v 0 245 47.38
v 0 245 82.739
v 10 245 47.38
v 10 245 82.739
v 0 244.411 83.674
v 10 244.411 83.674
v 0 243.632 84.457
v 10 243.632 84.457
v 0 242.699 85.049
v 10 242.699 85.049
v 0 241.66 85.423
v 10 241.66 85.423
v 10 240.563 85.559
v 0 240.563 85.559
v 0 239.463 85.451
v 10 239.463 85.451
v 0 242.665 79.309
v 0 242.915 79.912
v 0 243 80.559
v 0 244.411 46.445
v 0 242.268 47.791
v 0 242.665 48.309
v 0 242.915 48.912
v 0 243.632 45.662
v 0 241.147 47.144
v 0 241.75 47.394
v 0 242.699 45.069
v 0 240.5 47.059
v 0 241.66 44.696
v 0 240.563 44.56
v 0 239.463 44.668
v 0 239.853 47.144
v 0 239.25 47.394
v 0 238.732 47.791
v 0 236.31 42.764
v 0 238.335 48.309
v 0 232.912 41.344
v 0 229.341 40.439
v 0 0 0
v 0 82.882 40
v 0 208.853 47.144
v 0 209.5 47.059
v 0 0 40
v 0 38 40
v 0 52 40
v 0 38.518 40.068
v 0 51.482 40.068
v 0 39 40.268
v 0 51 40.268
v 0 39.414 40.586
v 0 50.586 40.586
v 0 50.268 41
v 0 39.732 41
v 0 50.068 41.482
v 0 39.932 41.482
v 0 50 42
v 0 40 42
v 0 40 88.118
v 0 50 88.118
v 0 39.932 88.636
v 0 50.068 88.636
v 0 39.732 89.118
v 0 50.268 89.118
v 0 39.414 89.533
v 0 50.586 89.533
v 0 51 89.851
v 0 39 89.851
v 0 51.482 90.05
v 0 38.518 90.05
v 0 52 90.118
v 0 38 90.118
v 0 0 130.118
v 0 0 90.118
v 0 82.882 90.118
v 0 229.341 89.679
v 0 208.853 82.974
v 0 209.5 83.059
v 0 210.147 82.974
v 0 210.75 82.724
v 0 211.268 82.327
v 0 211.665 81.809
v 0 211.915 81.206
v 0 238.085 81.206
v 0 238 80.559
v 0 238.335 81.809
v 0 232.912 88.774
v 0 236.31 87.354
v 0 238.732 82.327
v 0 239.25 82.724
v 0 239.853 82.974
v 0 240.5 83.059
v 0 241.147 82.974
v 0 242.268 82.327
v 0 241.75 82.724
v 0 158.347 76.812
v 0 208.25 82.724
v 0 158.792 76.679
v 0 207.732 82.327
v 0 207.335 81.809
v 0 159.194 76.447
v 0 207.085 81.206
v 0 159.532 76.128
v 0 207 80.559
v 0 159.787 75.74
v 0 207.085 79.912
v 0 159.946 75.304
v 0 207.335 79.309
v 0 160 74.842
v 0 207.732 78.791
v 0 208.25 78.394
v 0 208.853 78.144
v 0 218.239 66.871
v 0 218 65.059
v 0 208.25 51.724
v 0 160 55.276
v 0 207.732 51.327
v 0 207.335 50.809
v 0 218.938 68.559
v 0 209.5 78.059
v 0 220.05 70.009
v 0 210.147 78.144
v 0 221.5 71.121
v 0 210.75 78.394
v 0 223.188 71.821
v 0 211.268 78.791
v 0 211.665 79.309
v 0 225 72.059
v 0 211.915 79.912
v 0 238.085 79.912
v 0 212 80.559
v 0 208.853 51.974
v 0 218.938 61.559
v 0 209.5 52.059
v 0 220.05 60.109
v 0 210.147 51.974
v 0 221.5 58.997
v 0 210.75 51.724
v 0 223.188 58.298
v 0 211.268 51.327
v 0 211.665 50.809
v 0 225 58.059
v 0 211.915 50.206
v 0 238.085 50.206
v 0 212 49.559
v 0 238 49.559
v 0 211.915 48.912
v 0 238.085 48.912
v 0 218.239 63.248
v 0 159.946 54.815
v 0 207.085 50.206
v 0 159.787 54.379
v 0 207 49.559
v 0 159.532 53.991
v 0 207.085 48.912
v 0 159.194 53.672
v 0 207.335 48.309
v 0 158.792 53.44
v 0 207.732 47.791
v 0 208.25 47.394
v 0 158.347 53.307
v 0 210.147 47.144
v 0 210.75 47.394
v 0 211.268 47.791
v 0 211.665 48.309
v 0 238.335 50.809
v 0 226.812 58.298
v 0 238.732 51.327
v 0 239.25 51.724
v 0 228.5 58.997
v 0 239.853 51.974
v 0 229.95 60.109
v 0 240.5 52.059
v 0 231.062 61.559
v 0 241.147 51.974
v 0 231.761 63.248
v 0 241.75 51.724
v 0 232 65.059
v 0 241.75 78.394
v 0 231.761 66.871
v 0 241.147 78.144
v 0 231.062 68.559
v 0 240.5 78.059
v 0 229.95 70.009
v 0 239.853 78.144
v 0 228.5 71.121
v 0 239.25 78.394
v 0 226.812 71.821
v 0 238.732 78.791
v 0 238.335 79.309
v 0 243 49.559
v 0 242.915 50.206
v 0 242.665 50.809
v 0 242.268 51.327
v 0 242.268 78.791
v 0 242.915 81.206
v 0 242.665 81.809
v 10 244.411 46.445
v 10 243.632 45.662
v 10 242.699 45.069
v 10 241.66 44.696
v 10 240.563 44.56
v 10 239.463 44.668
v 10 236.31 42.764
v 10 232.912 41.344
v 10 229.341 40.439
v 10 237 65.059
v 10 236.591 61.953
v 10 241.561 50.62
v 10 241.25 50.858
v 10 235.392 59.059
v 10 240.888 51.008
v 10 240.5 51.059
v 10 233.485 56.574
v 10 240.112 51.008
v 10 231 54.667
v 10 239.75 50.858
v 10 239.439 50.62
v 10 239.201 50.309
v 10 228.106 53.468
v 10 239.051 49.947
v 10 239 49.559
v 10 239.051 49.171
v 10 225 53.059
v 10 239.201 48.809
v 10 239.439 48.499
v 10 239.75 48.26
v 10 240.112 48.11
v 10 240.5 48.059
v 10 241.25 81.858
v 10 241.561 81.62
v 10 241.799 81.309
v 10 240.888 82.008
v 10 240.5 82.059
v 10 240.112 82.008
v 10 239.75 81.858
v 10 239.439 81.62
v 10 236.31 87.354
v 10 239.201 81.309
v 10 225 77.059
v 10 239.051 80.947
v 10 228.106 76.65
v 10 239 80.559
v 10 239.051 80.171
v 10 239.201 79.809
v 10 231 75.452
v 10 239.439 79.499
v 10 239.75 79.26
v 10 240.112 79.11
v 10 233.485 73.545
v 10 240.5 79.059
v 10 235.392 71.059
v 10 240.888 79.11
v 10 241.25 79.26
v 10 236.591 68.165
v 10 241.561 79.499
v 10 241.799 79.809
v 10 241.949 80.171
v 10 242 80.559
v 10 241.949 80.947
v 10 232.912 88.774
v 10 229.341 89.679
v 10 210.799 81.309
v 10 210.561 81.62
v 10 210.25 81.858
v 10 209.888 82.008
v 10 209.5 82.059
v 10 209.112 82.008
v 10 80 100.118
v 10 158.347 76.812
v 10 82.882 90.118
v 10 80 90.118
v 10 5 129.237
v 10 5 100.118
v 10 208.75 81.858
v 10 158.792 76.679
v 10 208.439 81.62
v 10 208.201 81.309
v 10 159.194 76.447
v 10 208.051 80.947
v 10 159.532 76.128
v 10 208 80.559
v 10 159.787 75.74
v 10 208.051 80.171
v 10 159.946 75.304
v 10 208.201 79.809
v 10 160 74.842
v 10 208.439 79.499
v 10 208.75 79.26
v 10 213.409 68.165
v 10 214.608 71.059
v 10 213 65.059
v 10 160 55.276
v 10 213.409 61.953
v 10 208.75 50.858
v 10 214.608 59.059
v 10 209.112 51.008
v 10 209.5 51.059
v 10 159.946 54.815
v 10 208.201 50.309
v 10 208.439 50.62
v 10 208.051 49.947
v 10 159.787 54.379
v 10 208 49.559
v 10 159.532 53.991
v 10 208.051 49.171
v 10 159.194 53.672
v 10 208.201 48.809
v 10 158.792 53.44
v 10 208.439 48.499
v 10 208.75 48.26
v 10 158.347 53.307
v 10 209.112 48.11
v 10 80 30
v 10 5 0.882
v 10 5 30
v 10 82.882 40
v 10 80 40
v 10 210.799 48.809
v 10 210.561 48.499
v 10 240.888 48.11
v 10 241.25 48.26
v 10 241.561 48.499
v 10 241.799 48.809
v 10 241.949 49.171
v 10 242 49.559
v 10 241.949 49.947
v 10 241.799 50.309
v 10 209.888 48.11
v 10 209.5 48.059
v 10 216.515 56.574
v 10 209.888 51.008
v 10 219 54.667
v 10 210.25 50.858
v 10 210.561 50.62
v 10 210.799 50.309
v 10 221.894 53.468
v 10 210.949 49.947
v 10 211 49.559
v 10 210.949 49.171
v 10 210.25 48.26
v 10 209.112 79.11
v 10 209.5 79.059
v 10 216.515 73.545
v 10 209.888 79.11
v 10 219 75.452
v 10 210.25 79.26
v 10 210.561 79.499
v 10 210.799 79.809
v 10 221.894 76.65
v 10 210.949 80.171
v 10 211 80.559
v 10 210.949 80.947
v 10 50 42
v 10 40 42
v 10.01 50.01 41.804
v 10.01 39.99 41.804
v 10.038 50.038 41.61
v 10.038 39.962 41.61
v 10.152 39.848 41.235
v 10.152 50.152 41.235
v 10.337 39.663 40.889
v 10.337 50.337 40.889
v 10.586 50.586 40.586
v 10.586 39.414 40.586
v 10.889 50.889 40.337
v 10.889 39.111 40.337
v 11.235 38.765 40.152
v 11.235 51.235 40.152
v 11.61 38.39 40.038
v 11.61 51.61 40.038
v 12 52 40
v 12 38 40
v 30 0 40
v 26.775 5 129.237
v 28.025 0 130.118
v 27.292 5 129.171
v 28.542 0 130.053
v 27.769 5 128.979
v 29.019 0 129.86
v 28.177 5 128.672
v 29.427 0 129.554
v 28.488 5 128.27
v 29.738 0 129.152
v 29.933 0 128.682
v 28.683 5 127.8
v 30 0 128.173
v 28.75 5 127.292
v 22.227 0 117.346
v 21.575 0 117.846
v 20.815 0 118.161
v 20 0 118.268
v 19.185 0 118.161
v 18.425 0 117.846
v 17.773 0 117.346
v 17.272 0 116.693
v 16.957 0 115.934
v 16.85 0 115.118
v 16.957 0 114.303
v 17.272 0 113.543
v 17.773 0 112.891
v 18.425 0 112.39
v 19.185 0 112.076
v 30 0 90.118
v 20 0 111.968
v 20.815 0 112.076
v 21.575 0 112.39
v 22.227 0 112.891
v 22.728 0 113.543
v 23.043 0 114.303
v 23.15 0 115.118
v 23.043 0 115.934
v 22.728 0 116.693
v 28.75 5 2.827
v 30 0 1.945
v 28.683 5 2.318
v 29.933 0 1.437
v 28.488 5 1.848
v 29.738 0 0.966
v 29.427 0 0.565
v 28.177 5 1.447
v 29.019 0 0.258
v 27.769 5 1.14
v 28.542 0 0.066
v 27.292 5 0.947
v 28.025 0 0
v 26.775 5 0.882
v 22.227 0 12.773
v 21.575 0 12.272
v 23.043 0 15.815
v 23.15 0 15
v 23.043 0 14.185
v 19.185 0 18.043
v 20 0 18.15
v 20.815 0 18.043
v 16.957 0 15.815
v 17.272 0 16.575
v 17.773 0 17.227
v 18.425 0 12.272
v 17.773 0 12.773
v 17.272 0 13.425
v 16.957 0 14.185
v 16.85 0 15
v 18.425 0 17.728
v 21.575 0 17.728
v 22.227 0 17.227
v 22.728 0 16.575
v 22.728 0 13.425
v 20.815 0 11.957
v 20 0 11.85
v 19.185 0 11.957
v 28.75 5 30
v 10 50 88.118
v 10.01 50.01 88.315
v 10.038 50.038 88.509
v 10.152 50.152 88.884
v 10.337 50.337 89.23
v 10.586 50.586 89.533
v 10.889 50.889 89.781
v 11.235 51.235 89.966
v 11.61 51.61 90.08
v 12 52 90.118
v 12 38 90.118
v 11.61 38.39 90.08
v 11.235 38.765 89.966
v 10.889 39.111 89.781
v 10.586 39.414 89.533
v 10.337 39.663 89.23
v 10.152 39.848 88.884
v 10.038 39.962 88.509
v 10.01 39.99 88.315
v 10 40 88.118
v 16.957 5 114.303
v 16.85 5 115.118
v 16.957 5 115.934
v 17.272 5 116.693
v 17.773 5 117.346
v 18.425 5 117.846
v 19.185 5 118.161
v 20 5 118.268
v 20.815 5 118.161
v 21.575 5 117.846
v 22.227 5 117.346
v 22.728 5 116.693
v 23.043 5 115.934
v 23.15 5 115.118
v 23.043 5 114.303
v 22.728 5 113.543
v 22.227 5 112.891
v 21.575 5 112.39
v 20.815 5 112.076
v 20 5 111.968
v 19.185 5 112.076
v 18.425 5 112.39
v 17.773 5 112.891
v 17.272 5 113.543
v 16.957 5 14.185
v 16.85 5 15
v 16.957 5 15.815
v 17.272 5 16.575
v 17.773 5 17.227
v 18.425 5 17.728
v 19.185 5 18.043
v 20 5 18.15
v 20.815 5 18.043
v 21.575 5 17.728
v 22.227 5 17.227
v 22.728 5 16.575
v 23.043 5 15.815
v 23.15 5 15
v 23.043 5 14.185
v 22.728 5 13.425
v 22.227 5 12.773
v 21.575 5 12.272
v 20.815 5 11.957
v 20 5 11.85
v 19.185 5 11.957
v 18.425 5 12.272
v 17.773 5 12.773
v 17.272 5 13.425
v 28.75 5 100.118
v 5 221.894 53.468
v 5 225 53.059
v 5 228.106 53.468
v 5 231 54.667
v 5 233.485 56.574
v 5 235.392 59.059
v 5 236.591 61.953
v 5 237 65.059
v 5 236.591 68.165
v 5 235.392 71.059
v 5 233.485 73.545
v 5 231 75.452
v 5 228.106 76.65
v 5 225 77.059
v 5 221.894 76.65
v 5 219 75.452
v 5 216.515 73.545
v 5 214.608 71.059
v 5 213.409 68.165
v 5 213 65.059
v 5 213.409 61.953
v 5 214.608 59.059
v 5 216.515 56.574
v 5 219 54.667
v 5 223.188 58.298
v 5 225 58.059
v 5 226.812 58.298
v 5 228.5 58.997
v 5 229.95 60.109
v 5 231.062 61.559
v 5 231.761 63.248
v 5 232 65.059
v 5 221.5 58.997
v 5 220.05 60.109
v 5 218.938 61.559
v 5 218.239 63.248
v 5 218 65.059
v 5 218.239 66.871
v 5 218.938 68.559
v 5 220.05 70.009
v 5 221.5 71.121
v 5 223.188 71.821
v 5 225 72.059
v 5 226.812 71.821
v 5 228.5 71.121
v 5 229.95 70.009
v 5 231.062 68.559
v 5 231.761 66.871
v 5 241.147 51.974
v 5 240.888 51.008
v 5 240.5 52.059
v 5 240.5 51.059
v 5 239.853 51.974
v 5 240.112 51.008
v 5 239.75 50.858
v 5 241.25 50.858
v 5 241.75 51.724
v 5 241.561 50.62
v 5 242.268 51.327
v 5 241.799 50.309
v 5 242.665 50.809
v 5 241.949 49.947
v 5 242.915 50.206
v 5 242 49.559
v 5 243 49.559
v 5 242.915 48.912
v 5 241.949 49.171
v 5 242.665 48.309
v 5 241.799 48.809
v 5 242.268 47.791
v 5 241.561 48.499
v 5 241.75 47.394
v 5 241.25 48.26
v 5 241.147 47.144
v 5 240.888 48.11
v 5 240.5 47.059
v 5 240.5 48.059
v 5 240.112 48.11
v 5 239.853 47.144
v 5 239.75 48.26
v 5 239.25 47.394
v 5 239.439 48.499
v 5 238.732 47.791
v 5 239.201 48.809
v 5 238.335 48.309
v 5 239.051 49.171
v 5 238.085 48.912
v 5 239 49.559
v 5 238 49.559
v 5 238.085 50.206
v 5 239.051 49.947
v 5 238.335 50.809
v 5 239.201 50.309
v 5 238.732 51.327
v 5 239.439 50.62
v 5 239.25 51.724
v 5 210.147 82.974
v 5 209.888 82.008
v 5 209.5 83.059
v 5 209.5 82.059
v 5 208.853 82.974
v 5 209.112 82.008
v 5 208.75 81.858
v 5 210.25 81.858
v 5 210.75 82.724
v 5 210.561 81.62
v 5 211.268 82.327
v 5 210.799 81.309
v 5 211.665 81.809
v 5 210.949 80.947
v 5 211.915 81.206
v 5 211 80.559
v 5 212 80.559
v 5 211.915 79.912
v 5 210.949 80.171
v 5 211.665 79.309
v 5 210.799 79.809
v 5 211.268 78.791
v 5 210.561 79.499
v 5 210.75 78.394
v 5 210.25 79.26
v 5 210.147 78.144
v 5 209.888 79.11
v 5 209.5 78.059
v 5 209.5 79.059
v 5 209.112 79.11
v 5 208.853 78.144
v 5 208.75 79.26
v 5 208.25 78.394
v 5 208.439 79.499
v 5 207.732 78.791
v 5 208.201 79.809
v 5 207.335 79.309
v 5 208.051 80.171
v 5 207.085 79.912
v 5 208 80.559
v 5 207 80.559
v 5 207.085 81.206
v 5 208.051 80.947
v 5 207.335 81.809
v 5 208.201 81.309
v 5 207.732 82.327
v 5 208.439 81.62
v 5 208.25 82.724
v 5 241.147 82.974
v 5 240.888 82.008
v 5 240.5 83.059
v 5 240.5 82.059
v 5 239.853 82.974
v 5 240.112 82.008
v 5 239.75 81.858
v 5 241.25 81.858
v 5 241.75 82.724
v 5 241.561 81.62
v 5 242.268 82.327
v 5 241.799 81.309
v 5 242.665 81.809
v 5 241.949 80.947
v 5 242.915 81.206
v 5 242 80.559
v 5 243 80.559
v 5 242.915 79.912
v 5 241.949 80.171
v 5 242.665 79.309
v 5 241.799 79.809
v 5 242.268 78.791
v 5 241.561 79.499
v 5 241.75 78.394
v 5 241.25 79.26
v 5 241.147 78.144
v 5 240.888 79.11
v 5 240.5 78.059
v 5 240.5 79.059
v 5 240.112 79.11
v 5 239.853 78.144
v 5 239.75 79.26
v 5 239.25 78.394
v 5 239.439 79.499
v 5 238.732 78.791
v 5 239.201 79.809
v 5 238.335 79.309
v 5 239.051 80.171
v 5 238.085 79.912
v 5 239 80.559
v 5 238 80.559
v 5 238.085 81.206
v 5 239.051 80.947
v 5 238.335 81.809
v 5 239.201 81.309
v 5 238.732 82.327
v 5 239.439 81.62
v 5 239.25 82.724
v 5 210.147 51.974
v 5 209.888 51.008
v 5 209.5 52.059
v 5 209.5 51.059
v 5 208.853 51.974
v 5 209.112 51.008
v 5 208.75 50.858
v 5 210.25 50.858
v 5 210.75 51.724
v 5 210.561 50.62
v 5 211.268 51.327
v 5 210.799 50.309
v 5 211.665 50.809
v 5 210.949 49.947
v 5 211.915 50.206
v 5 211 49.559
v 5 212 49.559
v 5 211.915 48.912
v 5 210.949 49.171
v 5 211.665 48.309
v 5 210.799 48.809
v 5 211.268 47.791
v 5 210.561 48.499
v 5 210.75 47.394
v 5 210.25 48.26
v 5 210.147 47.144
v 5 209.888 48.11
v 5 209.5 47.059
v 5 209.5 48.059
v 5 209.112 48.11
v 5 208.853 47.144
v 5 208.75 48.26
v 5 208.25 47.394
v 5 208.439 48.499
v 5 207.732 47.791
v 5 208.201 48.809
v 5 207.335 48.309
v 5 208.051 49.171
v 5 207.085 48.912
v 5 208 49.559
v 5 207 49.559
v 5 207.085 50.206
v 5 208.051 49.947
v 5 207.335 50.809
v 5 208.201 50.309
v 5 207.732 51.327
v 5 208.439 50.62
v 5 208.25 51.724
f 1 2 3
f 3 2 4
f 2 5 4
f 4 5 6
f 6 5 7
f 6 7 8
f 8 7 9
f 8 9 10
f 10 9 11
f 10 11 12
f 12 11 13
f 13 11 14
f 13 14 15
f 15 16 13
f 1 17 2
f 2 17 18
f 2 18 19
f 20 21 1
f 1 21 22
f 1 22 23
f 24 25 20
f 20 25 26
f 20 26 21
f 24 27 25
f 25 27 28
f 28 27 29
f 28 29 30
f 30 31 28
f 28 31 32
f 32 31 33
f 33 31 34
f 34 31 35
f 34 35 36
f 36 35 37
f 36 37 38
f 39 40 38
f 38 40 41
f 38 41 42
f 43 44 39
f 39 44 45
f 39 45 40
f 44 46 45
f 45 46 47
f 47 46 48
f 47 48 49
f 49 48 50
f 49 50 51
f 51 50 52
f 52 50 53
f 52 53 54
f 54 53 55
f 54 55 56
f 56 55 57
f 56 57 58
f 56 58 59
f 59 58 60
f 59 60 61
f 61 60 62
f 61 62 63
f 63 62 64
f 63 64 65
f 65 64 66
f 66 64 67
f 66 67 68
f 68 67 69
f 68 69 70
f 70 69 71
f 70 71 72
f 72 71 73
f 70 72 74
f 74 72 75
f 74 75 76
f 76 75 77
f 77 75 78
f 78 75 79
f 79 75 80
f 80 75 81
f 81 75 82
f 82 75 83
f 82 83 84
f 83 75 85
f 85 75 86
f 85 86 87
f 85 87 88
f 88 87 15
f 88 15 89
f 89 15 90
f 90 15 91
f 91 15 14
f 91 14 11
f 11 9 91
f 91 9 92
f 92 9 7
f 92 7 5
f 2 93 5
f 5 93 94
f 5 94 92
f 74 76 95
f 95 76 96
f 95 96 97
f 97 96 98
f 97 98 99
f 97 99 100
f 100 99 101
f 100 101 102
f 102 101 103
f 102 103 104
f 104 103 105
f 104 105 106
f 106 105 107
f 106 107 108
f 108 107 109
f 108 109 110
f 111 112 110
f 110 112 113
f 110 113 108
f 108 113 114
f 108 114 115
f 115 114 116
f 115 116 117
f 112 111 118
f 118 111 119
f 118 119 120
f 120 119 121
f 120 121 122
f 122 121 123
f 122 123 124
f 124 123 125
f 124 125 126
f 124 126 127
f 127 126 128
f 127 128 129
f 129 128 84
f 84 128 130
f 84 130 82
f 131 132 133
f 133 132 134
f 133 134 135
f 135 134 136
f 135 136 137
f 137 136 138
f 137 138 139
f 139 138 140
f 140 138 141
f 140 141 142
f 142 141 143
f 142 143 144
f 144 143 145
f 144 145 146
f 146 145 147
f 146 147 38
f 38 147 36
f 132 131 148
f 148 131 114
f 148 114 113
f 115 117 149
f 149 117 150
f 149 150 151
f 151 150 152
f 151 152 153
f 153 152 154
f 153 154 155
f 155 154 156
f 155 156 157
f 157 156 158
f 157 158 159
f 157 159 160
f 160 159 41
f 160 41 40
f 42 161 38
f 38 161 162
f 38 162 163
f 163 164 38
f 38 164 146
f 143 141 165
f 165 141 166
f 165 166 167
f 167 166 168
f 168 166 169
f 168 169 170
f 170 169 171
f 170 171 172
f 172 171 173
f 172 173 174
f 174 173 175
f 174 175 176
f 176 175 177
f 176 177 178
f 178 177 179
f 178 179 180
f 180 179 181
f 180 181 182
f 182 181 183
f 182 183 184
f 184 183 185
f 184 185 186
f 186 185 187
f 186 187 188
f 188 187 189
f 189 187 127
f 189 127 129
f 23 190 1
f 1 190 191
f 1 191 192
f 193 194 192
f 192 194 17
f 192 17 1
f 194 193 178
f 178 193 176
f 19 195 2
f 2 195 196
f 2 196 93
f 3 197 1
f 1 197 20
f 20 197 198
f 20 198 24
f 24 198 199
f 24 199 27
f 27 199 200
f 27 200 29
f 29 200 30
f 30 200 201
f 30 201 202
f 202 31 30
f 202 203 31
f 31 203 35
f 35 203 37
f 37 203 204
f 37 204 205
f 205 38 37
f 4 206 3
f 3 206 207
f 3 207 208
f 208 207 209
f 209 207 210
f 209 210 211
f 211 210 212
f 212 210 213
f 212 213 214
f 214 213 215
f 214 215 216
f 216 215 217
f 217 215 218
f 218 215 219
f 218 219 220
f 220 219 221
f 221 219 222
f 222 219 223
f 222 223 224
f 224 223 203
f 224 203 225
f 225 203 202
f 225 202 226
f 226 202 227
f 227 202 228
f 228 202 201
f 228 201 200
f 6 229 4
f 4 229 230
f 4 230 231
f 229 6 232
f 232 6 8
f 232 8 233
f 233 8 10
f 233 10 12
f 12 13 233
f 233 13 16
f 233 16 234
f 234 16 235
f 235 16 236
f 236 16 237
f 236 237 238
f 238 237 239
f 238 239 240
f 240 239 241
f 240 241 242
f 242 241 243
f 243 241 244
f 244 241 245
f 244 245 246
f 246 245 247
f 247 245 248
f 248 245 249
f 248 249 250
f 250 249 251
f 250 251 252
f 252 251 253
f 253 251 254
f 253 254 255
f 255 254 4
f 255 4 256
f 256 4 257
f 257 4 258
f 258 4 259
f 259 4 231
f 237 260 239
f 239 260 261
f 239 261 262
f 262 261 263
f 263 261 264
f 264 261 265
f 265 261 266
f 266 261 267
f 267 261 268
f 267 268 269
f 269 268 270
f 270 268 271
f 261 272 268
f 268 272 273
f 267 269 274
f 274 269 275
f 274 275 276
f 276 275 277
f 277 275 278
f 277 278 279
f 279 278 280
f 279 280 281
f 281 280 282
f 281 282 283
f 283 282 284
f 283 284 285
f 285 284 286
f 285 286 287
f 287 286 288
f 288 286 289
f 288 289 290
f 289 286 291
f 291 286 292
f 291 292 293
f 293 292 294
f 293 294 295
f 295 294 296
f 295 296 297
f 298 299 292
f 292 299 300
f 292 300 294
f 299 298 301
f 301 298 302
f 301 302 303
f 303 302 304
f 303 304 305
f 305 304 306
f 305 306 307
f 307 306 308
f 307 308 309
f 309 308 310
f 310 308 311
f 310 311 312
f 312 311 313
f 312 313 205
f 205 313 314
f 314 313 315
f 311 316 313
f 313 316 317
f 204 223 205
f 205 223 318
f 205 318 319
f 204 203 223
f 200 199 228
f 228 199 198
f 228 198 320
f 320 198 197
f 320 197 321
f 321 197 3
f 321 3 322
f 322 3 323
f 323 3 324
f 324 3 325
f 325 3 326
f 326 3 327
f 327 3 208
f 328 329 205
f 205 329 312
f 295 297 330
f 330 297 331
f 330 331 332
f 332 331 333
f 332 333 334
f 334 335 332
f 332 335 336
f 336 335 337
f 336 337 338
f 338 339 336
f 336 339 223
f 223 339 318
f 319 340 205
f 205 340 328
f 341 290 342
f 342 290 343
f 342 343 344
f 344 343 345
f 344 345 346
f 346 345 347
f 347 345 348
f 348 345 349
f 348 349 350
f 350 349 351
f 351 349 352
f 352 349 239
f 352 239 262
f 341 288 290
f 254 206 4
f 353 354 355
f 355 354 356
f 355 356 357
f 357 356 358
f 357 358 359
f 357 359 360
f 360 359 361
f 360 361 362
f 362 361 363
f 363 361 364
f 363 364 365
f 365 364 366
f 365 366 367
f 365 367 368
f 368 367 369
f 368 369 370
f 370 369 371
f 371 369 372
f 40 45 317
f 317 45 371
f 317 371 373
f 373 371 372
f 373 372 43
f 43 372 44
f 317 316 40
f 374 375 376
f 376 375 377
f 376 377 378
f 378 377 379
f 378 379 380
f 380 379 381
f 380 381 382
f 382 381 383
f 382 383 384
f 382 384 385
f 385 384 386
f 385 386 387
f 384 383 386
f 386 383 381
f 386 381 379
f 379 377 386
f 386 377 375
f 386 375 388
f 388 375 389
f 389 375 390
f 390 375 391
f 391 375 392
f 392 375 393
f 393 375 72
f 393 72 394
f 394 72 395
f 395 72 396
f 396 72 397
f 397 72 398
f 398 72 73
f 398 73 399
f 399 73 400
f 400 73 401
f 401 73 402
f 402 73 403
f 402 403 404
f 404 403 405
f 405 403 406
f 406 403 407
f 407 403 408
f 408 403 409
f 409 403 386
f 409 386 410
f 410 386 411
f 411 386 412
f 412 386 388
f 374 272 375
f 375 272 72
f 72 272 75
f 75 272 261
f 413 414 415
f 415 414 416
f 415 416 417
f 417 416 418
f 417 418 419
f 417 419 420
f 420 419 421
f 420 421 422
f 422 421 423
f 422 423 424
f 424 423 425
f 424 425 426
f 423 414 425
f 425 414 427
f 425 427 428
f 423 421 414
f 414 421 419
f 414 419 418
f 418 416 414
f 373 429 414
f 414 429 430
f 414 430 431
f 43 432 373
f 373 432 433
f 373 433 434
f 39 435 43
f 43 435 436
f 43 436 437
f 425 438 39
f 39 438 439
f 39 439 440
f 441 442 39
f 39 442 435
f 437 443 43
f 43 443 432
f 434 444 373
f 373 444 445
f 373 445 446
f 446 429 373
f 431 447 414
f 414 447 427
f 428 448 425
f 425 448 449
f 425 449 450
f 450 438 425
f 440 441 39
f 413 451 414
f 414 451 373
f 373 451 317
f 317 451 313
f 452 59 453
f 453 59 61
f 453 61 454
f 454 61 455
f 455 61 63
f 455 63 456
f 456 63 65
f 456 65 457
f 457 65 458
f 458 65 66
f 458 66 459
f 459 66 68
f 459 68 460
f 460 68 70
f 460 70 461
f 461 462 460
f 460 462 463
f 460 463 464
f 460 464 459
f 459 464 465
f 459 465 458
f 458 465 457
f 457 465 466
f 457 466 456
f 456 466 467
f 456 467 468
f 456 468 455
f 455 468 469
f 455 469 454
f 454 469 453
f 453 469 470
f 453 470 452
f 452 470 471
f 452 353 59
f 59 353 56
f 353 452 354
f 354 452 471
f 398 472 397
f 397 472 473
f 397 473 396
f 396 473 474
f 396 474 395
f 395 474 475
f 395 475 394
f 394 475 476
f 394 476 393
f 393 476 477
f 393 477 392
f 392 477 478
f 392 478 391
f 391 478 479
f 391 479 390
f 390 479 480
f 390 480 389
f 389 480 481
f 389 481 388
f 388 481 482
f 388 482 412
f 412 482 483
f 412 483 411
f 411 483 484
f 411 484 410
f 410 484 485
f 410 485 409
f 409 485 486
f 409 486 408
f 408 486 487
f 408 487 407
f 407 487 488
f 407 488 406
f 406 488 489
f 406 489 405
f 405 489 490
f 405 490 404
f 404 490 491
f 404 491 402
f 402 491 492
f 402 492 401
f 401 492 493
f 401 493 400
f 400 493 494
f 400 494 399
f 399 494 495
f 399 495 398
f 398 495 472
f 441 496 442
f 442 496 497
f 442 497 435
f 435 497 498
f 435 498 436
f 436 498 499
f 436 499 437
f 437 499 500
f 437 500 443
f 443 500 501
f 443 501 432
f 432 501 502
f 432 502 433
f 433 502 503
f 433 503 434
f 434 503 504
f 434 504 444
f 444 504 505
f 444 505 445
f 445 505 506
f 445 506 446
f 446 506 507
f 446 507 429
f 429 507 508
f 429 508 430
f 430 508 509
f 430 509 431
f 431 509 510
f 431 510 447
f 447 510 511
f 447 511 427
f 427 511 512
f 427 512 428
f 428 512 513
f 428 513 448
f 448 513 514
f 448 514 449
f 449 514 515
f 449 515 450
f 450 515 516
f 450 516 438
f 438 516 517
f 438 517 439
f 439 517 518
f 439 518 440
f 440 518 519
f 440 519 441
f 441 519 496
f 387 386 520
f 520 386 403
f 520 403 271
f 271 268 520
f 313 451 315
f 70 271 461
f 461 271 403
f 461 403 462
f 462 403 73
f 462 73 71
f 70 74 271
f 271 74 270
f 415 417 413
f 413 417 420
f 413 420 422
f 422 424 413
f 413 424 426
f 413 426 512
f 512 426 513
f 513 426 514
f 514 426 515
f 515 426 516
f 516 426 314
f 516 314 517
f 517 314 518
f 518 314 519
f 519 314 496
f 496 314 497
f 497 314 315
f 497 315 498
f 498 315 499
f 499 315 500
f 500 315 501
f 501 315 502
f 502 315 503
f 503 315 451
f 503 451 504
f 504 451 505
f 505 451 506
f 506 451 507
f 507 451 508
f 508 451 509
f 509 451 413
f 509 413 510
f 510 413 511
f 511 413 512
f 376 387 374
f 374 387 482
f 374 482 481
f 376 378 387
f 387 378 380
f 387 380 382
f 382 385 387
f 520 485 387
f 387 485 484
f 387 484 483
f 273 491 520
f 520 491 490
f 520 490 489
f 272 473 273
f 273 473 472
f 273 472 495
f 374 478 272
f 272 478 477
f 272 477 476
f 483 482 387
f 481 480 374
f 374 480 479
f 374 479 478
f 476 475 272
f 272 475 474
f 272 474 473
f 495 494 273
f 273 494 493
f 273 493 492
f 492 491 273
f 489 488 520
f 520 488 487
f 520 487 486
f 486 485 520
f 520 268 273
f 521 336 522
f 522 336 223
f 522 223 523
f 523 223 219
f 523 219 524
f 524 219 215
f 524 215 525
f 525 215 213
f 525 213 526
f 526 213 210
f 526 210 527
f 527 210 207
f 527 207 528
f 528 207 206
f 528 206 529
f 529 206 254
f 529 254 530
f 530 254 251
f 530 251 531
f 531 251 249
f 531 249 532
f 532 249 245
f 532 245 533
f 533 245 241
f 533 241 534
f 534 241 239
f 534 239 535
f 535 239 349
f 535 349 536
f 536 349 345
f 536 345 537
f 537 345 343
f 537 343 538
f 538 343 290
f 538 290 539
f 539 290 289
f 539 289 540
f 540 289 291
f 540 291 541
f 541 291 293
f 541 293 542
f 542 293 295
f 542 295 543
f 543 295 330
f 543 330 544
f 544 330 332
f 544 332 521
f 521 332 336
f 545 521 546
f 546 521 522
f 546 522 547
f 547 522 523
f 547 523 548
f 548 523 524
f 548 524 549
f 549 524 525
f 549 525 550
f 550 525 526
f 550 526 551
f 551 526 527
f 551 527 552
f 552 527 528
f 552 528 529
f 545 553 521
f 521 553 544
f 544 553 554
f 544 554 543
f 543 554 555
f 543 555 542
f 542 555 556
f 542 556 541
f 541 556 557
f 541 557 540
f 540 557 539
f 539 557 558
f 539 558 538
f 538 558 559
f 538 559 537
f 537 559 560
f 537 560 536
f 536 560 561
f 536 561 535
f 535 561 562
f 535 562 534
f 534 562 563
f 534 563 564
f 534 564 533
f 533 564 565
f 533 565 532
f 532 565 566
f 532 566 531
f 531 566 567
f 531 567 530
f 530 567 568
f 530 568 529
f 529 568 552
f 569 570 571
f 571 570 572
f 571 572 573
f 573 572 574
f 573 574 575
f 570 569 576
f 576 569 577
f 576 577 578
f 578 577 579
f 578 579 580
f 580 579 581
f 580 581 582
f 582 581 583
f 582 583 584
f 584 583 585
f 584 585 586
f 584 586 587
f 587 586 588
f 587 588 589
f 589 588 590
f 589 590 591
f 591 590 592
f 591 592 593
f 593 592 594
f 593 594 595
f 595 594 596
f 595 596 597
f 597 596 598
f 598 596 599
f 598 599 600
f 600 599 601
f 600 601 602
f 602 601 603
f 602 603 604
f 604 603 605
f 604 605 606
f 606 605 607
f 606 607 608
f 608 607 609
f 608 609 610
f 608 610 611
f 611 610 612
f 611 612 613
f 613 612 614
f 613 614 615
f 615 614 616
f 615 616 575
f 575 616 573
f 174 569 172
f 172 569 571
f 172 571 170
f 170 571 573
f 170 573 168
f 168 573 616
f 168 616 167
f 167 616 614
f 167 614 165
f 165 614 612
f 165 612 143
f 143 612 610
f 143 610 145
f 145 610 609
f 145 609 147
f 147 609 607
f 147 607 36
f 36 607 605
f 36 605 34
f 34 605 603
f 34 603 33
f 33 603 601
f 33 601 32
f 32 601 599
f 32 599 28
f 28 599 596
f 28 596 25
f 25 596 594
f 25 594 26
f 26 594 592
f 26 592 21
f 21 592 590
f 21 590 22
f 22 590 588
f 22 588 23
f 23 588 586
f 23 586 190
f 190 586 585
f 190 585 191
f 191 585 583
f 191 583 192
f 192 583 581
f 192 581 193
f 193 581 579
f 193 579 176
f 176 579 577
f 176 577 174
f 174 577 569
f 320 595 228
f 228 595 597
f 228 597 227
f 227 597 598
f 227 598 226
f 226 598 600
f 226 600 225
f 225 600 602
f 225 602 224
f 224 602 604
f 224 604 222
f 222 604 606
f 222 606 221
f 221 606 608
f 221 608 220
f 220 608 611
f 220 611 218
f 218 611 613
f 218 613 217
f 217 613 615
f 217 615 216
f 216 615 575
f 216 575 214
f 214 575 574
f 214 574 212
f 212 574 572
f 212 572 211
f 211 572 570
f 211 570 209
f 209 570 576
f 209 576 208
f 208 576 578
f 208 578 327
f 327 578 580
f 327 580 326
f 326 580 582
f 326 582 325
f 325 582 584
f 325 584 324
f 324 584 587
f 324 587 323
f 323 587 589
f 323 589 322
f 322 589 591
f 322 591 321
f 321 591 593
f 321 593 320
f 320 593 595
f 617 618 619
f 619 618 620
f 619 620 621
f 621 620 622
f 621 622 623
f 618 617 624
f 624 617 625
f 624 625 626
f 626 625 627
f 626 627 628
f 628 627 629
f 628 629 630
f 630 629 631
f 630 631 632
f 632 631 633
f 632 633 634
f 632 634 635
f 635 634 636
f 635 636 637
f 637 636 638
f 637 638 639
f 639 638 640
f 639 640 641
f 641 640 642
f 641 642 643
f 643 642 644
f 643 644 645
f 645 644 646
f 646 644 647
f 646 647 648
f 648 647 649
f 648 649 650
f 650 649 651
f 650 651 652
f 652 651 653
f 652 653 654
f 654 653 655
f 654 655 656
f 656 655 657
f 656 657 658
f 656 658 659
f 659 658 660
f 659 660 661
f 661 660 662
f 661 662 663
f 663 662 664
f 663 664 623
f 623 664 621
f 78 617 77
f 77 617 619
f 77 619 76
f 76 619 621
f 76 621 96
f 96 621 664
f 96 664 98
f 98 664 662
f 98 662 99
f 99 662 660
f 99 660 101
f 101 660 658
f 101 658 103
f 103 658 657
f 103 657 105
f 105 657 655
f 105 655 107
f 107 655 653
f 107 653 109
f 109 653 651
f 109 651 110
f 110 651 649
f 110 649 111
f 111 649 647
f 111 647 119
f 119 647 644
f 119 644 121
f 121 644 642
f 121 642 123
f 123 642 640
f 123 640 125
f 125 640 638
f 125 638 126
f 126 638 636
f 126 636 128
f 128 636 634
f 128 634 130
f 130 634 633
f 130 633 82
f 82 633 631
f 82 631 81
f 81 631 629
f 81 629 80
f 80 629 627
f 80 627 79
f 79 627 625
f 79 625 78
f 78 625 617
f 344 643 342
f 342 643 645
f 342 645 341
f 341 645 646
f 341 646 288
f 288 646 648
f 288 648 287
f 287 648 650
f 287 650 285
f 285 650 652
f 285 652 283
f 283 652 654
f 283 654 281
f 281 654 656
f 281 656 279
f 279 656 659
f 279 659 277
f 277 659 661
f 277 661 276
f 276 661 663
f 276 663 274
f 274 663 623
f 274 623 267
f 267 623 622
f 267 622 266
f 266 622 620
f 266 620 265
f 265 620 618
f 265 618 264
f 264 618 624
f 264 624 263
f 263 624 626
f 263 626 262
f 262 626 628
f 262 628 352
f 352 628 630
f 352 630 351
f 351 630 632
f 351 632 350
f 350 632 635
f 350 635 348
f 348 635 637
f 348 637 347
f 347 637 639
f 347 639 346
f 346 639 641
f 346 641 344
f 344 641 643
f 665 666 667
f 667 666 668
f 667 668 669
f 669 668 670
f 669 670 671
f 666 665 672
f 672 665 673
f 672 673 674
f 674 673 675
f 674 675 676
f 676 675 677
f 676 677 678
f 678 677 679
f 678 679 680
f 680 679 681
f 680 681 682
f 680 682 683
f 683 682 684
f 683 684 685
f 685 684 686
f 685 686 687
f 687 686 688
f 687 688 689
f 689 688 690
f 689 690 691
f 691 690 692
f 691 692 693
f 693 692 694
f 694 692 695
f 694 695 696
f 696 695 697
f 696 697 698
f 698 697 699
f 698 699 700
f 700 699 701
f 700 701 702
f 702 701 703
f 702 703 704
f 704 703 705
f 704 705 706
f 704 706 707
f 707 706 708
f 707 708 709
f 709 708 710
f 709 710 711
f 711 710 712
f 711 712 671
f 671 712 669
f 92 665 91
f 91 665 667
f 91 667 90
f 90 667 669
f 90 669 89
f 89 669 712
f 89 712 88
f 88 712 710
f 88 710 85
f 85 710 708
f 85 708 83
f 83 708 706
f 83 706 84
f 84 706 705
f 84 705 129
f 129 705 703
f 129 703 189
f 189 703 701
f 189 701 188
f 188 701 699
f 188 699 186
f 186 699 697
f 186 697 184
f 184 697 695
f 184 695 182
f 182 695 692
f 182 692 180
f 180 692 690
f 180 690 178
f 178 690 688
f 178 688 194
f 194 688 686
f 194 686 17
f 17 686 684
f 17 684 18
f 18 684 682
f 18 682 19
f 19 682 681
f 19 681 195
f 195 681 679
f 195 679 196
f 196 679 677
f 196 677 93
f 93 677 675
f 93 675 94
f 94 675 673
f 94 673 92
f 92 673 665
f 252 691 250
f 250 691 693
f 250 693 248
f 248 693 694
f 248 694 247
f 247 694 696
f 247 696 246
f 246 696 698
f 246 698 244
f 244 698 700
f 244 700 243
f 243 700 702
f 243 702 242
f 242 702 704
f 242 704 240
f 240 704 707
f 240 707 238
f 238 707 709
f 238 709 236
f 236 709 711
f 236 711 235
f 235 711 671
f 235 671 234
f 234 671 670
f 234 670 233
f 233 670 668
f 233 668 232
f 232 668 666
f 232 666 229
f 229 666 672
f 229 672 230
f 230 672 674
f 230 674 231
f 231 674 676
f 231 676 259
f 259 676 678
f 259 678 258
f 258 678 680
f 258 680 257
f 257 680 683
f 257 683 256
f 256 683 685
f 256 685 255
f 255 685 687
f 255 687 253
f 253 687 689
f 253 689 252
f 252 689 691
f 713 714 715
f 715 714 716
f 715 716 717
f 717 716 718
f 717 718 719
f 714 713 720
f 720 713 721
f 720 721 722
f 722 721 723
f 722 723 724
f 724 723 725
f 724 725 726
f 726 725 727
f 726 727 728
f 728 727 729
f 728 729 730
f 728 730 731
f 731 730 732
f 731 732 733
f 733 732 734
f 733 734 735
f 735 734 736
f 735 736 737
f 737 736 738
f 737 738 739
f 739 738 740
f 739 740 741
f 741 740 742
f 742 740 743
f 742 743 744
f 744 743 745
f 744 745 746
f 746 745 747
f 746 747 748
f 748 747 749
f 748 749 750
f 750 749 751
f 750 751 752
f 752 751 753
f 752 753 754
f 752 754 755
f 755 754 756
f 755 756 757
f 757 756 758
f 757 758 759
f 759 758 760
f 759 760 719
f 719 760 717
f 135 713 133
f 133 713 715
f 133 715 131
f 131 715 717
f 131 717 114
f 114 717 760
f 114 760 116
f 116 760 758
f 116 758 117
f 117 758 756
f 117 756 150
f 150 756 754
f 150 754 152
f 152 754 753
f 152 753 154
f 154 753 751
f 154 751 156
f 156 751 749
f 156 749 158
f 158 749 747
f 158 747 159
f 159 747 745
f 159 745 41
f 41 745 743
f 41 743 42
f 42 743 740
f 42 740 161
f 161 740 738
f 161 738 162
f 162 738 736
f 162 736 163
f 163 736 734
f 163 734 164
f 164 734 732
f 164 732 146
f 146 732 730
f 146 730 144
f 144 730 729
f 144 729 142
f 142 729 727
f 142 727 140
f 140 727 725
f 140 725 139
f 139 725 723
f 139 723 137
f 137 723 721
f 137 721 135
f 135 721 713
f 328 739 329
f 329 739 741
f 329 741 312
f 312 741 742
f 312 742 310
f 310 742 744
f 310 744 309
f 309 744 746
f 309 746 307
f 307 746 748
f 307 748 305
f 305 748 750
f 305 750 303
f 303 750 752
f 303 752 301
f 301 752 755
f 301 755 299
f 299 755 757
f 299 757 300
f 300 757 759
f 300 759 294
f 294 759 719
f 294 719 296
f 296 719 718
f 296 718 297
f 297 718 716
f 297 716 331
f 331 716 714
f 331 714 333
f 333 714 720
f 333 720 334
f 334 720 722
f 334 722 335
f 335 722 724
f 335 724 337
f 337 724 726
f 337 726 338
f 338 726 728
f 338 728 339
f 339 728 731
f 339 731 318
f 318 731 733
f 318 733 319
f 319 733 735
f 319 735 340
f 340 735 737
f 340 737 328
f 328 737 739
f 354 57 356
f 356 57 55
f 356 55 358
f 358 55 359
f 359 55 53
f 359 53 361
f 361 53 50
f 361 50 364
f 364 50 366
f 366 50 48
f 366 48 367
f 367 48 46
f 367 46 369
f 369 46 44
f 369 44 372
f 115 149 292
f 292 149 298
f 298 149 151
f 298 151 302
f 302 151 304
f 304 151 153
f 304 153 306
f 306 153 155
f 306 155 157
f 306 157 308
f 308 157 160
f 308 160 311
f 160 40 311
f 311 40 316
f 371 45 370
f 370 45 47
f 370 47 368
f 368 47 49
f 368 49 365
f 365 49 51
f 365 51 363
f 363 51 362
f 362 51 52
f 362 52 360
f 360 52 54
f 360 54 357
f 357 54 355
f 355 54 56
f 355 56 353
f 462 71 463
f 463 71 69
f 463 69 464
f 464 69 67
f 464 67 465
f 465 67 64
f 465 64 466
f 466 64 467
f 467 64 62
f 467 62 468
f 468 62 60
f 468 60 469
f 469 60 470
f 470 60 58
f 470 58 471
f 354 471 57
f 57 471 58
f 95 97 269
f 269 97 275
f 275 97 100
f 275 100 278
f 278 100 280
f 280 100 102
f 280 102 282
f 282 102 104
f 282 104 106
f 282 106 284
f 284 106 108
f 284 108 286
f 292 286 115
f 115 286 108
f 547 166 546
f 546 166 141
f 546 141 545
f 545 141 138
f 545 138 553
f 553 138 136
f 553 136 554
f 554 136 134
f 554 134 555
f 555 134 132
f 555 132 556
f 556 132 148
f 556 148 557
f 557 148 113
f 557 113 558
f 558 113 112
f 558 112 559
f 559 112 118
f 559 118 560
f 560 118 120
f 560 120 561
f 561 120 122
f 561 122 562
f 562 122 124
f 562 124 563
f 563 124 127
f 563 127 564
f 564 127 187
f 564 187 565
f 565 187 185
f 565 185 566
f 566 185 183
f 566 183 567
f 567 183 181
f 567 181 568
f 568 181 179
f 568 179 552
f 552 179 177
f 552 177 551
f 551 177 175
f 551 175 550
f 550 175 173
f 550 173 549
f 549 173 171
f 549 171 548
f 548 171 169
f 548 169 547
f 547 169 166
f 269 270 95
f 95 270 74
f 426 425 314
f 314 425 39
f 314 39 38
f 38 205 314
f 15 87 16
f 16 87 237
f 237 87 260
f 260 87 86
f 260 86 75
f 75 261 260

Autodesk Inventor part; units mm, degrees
ref_plane "YZ Plane" through (0, 0, 0) normal (1, 0, 0) x (0, 1, 0)
ref_plane "XZ Plane" through (0, 0, 0) normal (0, 1, 0) x (-1, 0, 0)
ref_plane "XY Plane" through (0, 0, 0) normal (0, 0, 1) x (1, 0, 0)
sketch "Skizze1" plane through (0, 0, 0) normal (1, 0, 0) x (0, 1, 0)
  arc A0 (250, 65.0592) -> (229.3412, 89.6794) centre (225, 65.0592) ccw
  line L0 (225, 65.0592) -> (229.3412, 89.6794) construction
  line L1 (225, 65.0592) -> (250, 65.0592) construction
  line L2 (229.3412, 89.6794) -> (0, 130.1185)
  line L3 (0, 130.1185) -> (0, 90.1185)
  arc A1 (229.3412, 40.439) -> (250, 65.0592) centre (225, 65.0592) ccw
  line L4 (229.3412, 40.439) -> (0, 0)
  line L5 (0, 0) -> (92.864, 0) construction
  line L6 (0, 0) -> (0, 40)
  line L7 (160, 76.5205) -> (160, 53.598)
  line L8 (40, 90.1185) -> (40, 40)
  line L9 (50, 40) -> (50, 90.1185)
  line L10 (82.882, 90.1185) -> (160, 76.5205)
  line L11 (82.882, 40) -> (160, 53.598)
  line L12 (0, 40) -> (40, 40)
  line L13 (50, 40) -> (82.882, 40)
  line L14 (0, 90.1185) -> (40, 90.1185)
  line L15 (50, 90.1185) -> (82.882, 90.1185)
  dimension "d21" = 80
  dimension "d24" = 25
  dimension "d68" = 250
  dimension "d73" = 80
  dimension "d88" = 130.1185
  dimension "d91" = 10
  dimension "d92" = 25
  dimension "d93" = 25
  dimension "d94" = 40
  dimension "d127" = 110
  dimension "d160" = 40
  dimension "d161" = 40
  dimension "d162" = 80
  dimension "d163" = 32.882
  dimension "d164" = 32.882
extrude "Extrusion2" add sketch "Skizze1" along normal blind 10
sketch "Skizze7" plane through (10, 0, 0) normal (1, 0, 0) x (0, 0, -1)
  arc A0 (-40.439, 229.3412) -> (-89.6794, 229.3412) centre (-65.0592, 225) ccw projected
  point P0 (0, 0)
hole "Bohrung6" at (10, 225, 65.0592) direction (-1, 0, 0) diameter 14 end through all
fillet "Rundung1" radius 2 5 edges at (5, 160, 76.5205) (5, 40, 90.1185) (5, 50, 40) (5, 160, 53.598) (5, 40, 40)
sketch "Skizze13" plane through (0, 0, 0) normal (-1, 0, 0) x (0, 0, 1)
  line L0 (80.5592, 240.5) -> (80.5592, 209.5)
  line L1 (80.5592, 209.5) -> (49.5592, 209.5)
  line L2 (49.5592, 209.5) -> (49.5592, 240.5)
  line L3 (49.5592, 240.5) -> (80.5592, 240.5)
  line L4 (80.5592, 240.5) -> (49.5592, 209.5) construction
  line L5 (80.5592, 209.5) -> (49.5592, 240.5) construction
  line L6 (80.5592, 240.5) -> (111.5592, 240.5) construction
  point P0 (0, 0)
  point P1 (65.0592, 225)
  dimension "d145" = 31
  dimension "d146" = 90
  dimension "d147" = 31
hole "Bohrung10" at (0, 209.5, 80.5592) at (0, 240.5, 80.5592) at (0, 240.5, 49.5592) at (0, 209.5, 49.5592) direction (1, 0, 0) diameter 3 end through all counterbore diameter 5 counterbore depth 5
sketch "Skizze14" plane through (10, 0, 0) normal (1, 0, 0) x (0, 0, -1)
  line L0 (-90.1185, 0) -> (-90.1185, 38) projected
  line L1 (-90.1185, 0) -> (-100.1185, 0)
  line L2 (-100.1185, 0) -> (-100.1185, 80)
  line L3 (-100.1185, 80) -> (-90.1185, 80)
  line L4 (-90.1185, 80) -> (-90.1185, 0)
  line L5 (-40, 0) -> (0, 0) projected
  line L6 (-40, 0) -> (-30, 0)
  line L7 (-30, 0) -> (-30, 80)
  line L8 (-30, 80) -> (-40, 80)
  line L9 (-40, 80) -> (-40, 0)
  dimension "d165" = 10
  dimension "d166" = 80
  dimension "d167" = 10
  dimension "d168" = 80
sketch "Skizze15" plane through (10, 0, 0) normal (1, 0, 0) x (0, 0, -1)
  circle A0 centre (-65.0592, 225) radius 7 projected
  circle A1 centre (-65.0592, 225) radius 12
  point P0 (0, 0)
  dimension "d157" = 24
extrude "Extrusion4" cut sketch "Skizze15" against normal blind 5
sketch "Skizze16" plane through (10, 0, 0) normal (1, 0, 0) x (0, 0, -1)
  point P0 (0, 0)
sketch "Skizze17" plane through (10, 0, 0) normal (1, 0, 0) x (0, 0, -1)
  point P0 (0, 0)
extrude "Extrusion5" add sketch "Skizze14" along normal blind 20
sketch "Skizze18" plane through (10, 0, 100.1185) normal (0, 0, 1) x (1, 0, 0)
  line L0 (0, 0) -> (0, 80) projected
  line L1 (0, 0) -> (20, 0) projected
  line L2 (20, 80) -> (20, 0) projected
  line L3 (0, 80) -> (20, 80) projected
  line L4 (20, 80) -> (20, 0) projected
  line L5 (20, 0) -> (0, 80)
  line L6 (20, 80) -> (0, 80)
  point P0 (-10, 0)
sketch "Skizze19" plane through (10, 0, 0) normal (1, 0, 0) x (0, 0, -1)
  line L0 (0, 0) -> (-40.439, 229.3412) projected
  arc A0 (-40.439, 229.3412) -> (-89.6794, 229.3412) centre (-65.0592, 225) ccw projected
  line L1 (-89.6794, 229.3412) -> (-130.1185, 0) projected
  line L2 (-130.1185, 0) -> (-100.1185, 0) projected
  line L3 (-100.1185, 0) -> (-100.1185, 80) projected
  line L4 (-90.1185, 80) -> (-90.1185, 82.882) projected
  line L5 (-90.1185, 82.882) -> (-76.8119, 158.3473) projected
  arc A1 (-74.8423, 160) -> (-76.8119, 158.3473) centre (-74.8423, 158) ccw projected
  line L6 (-74.8423, 160) -> (-55.2762, 160) projected
  arc A2 (-53.3066, 158.3473) -> (-55.2762, 160) centre (-55.2762, 158) ccw projected
  line L7 (-53.3066, 158.3473) -> (-40, 82.882) projected
  line L8 (-40, 82.882) -> (-40, 80) projected
  line L9 (-30, 80) -> (-30, 0) projected
  line L10 (-30, 0) -> (0, 0) projected
  circle A3 centre (-65.0592, 225) radius 12 projected
  circle A4 centre (-49.5592, 240.5) radius 1.5 projected
  circle A5 centre (-80.5592, 209.5) radius 1.5 projected
  circle A6 centre (-80.5592, 240.5) radius 1.5 projected
  circle A7 centre (-49.5592, 209.5) radius 1.5 projected
  line L11 (-90.1185, 80) -> (-90.1185, 0) projected
  line L12 (-105.1185, 80) -> (-90.1185, 80) projected
  line L13 (-105.1185, 0) -> (-105.1185, 80) projected
  line L14 (-105.1185, 0) -> (-90.1185, 0) projected
  line L15 (-130.1185, 0) -> (-105.1185, 0)
  line L16 (-100.1185, 0) -> (-100.1185, 80) projected
  line L17 (-100.1185, 0) -> (-100.1185, 5)
  line L18 (-100.1185, 0) -> (-95.1185, 0) construction
  line L19 (-100.1185, 5) -> (-129.2368, 5)
  line L20 (-130.1185, 0) -> (-129.2368, 5)
  line L21 (-100.1185, 80) -> (-90.1185, 80) projected
  line L22 (-40, 80) -> (-30, 80) projected
  dimension "d173" = 5
  dimension "d174" = 90
sketch "Skizze20" plane through (10, 0, 0) normal (1, 0, 0) x (0, 0, -1)
  point P0 (0, 0)
extrude "Extrusion7" add sketch "Skizze19" along normal blind 20 contours L19 L13 L2 L1 | L19 L3 L2 L13
sketch "Skizze21" plane through (10, 0, 0) normal (1, 0, 0) x (0, 0, -1)
  circle A0 centre (-49.5592, 209.5) radius 1.5 projected
  circle A1 centre (-80.5592, 240.5) radius 1.5 projected
  circle A2 centre (-80.5592, 209.5) radius 1.5 projected
  circle A3 centre (-49.5592, 240.5) radius 1.5 projected
  circle A4 centre (-65.0592, 225) radius 12 projected
  line L0 (-129.2368, 5) -> (-100.1185, 5) projected
  line L1 (-100.1185, 5) -> (-100.1185, 80) projected
  line L2 (-100.1185, 80) -> (-90.1185, 80) projected
  line L3 (-90.1185, 80) -> (-90.1185, 82.882) projected
  line L4 (-90.1185, 82.882) -> (-76.8119, 158.3473) projected
  arc A5 (-74.8423, 160) -> (-76.8119, 158.3473) centre (-74.8423, 158) ccw projected
  line L5 (-74.8423, 160) -> (-55.2762, 160) projected
  arc A6 (-53.3066, 158.3473) -> (-55.2762, 160) centre (-55.2762, 158) ccw projected
  line L6 (-53.3066, 158.3473) -> (-40, 82.882) projected
  line L7 (-40, 82.882) -> (-40, 80) projected
  line L8 (-40, 80) -> (-30, 80) projected
  line L9 (-30, 80) -> (-30, 0) projected
  line L10 (-30, 0) -> (0, 0) projected
  line L11 (0, 0) -> (-40.439, 229.3412) projected
  arc A7 (-40.439, 229.3412) -> (-89.6794, 229.3412) centre (-65.0592, 225) ccw projected
  line L12 (-89.6794, 229.3412) -> (-129.2368, 5) projected
  line L13 (-40, 0) -> (-30, 0) projected
  line L14 (-30, 0) -> (-30, 80) projected
  line L15 (-30, 80) -> (-40, 80) projected
  line L16 (-40, 80) -> (-40, 0) projected
  line L17 (0, 0) -> (-0.8816, 5)
  line L18 (-30, 80) -> (-30, 0) projected
  line L19 (-30, 5) -> (-30, 0)
  line L20 (-30, 0) -> (0, 0)
  line L21 (-30, 5) -> (-0.8816, 5)
  dimension "d177" = 5
extrude "Extrusion8" add sketch "Skizze21" along normal blind 20 contours L11 L10 L9 L21
extrude "Extrusion9" cut sketch "Skizze18" along normal through all both and the other way through all contours L3 L2 L5
sketch "Skizze22" plane through (10, 5, 30) normal (0, 1, 0) x (1, 0, 0)
  line L0 (0, -60.1185) -> (20, -60.1185) construction
  line L1 (20, -100.1185) -> (20, -60.1185) construction
  line L2 (20, -10) -> (20, 30) construction
  line L3 (20, -10) -> (0, -10) construction
  point P0 (-10, 30)
  point P1 (10, -85.1185)
  point P2 (10, 15)
  dimension "d182" = 25
  dimension "d183" = 10
  dimension "d184" = 10
  dimension "d185" = 25
hole "Bohrung11" at (20, 5, 115.1185) at (20, 5, 15) direction (0, -1, 0) diameter 6.3 end through all
fillet "Rundung2" radius 2 5 edges at (10, 44, 90.1185) (5, 50, 90.1185) (29.375, 2.5, 0.4408) (29.375, 2.5, 129.6777) (10, 45, 40)
sketch "Skizze23" plane through (0, 0, 0) normal (-1, 0, 0) x (0, 0, 1)
  circle A0 centre (80.5592, 240.5) radius 2.5 projected
  circle A1 centre (80.5592, 240.5) radius 5
  circle A2 centre (49.5592, 240.5) radius 2.5 projected
  circle A3 centre (49.5592, 240.5) radius 5
  arc A4 (89.6794, 229.3412) -> (40.439, 229.3412) centre (65.0592, 225) ccw projected
  point P0 (0, 0)
  dimension "d194" = 10
  dimension "d195" = 10
extrude "Extrusion10" add sketch "Skizze23" against normal blind 10
ref_plane "Arbeitsebene4" through (0, 245, 90.1185) normal (0, -1, 0) x (1, 0, 0)
sketch "Skizze24" plane through (0, 245, 90.1185) normal (0, -1, 0) x (1, 0, 0)
  line L0 (-28.75, 54.9898) -> (28.75, 54.9898)
  line L1 (28.75, 54.9898) -> (28.75, -54.9898)
  line L2 (28.75, -54.9898) -> (-28.75, -54.9898)
  line L3 (-28.75, -54.9898) -> (-28.75, 54.9898)
  line L4 (12, 0) -> (0, 0) projected
  line L5 (-28.75, 54.9898) -> (28.75, -54.9898) construction
  line L6 (28.75, 54.9898) -> (-28.75, -54.9898) construction
  point P0 (0, -90.1185)
  dimension "d199" = 57.5
  dimension "d200" = 109.9796
extrude "Extrusion11" cut sketch "Skizze24" against normal blind 10
properties part number "halter_seite_motor"
